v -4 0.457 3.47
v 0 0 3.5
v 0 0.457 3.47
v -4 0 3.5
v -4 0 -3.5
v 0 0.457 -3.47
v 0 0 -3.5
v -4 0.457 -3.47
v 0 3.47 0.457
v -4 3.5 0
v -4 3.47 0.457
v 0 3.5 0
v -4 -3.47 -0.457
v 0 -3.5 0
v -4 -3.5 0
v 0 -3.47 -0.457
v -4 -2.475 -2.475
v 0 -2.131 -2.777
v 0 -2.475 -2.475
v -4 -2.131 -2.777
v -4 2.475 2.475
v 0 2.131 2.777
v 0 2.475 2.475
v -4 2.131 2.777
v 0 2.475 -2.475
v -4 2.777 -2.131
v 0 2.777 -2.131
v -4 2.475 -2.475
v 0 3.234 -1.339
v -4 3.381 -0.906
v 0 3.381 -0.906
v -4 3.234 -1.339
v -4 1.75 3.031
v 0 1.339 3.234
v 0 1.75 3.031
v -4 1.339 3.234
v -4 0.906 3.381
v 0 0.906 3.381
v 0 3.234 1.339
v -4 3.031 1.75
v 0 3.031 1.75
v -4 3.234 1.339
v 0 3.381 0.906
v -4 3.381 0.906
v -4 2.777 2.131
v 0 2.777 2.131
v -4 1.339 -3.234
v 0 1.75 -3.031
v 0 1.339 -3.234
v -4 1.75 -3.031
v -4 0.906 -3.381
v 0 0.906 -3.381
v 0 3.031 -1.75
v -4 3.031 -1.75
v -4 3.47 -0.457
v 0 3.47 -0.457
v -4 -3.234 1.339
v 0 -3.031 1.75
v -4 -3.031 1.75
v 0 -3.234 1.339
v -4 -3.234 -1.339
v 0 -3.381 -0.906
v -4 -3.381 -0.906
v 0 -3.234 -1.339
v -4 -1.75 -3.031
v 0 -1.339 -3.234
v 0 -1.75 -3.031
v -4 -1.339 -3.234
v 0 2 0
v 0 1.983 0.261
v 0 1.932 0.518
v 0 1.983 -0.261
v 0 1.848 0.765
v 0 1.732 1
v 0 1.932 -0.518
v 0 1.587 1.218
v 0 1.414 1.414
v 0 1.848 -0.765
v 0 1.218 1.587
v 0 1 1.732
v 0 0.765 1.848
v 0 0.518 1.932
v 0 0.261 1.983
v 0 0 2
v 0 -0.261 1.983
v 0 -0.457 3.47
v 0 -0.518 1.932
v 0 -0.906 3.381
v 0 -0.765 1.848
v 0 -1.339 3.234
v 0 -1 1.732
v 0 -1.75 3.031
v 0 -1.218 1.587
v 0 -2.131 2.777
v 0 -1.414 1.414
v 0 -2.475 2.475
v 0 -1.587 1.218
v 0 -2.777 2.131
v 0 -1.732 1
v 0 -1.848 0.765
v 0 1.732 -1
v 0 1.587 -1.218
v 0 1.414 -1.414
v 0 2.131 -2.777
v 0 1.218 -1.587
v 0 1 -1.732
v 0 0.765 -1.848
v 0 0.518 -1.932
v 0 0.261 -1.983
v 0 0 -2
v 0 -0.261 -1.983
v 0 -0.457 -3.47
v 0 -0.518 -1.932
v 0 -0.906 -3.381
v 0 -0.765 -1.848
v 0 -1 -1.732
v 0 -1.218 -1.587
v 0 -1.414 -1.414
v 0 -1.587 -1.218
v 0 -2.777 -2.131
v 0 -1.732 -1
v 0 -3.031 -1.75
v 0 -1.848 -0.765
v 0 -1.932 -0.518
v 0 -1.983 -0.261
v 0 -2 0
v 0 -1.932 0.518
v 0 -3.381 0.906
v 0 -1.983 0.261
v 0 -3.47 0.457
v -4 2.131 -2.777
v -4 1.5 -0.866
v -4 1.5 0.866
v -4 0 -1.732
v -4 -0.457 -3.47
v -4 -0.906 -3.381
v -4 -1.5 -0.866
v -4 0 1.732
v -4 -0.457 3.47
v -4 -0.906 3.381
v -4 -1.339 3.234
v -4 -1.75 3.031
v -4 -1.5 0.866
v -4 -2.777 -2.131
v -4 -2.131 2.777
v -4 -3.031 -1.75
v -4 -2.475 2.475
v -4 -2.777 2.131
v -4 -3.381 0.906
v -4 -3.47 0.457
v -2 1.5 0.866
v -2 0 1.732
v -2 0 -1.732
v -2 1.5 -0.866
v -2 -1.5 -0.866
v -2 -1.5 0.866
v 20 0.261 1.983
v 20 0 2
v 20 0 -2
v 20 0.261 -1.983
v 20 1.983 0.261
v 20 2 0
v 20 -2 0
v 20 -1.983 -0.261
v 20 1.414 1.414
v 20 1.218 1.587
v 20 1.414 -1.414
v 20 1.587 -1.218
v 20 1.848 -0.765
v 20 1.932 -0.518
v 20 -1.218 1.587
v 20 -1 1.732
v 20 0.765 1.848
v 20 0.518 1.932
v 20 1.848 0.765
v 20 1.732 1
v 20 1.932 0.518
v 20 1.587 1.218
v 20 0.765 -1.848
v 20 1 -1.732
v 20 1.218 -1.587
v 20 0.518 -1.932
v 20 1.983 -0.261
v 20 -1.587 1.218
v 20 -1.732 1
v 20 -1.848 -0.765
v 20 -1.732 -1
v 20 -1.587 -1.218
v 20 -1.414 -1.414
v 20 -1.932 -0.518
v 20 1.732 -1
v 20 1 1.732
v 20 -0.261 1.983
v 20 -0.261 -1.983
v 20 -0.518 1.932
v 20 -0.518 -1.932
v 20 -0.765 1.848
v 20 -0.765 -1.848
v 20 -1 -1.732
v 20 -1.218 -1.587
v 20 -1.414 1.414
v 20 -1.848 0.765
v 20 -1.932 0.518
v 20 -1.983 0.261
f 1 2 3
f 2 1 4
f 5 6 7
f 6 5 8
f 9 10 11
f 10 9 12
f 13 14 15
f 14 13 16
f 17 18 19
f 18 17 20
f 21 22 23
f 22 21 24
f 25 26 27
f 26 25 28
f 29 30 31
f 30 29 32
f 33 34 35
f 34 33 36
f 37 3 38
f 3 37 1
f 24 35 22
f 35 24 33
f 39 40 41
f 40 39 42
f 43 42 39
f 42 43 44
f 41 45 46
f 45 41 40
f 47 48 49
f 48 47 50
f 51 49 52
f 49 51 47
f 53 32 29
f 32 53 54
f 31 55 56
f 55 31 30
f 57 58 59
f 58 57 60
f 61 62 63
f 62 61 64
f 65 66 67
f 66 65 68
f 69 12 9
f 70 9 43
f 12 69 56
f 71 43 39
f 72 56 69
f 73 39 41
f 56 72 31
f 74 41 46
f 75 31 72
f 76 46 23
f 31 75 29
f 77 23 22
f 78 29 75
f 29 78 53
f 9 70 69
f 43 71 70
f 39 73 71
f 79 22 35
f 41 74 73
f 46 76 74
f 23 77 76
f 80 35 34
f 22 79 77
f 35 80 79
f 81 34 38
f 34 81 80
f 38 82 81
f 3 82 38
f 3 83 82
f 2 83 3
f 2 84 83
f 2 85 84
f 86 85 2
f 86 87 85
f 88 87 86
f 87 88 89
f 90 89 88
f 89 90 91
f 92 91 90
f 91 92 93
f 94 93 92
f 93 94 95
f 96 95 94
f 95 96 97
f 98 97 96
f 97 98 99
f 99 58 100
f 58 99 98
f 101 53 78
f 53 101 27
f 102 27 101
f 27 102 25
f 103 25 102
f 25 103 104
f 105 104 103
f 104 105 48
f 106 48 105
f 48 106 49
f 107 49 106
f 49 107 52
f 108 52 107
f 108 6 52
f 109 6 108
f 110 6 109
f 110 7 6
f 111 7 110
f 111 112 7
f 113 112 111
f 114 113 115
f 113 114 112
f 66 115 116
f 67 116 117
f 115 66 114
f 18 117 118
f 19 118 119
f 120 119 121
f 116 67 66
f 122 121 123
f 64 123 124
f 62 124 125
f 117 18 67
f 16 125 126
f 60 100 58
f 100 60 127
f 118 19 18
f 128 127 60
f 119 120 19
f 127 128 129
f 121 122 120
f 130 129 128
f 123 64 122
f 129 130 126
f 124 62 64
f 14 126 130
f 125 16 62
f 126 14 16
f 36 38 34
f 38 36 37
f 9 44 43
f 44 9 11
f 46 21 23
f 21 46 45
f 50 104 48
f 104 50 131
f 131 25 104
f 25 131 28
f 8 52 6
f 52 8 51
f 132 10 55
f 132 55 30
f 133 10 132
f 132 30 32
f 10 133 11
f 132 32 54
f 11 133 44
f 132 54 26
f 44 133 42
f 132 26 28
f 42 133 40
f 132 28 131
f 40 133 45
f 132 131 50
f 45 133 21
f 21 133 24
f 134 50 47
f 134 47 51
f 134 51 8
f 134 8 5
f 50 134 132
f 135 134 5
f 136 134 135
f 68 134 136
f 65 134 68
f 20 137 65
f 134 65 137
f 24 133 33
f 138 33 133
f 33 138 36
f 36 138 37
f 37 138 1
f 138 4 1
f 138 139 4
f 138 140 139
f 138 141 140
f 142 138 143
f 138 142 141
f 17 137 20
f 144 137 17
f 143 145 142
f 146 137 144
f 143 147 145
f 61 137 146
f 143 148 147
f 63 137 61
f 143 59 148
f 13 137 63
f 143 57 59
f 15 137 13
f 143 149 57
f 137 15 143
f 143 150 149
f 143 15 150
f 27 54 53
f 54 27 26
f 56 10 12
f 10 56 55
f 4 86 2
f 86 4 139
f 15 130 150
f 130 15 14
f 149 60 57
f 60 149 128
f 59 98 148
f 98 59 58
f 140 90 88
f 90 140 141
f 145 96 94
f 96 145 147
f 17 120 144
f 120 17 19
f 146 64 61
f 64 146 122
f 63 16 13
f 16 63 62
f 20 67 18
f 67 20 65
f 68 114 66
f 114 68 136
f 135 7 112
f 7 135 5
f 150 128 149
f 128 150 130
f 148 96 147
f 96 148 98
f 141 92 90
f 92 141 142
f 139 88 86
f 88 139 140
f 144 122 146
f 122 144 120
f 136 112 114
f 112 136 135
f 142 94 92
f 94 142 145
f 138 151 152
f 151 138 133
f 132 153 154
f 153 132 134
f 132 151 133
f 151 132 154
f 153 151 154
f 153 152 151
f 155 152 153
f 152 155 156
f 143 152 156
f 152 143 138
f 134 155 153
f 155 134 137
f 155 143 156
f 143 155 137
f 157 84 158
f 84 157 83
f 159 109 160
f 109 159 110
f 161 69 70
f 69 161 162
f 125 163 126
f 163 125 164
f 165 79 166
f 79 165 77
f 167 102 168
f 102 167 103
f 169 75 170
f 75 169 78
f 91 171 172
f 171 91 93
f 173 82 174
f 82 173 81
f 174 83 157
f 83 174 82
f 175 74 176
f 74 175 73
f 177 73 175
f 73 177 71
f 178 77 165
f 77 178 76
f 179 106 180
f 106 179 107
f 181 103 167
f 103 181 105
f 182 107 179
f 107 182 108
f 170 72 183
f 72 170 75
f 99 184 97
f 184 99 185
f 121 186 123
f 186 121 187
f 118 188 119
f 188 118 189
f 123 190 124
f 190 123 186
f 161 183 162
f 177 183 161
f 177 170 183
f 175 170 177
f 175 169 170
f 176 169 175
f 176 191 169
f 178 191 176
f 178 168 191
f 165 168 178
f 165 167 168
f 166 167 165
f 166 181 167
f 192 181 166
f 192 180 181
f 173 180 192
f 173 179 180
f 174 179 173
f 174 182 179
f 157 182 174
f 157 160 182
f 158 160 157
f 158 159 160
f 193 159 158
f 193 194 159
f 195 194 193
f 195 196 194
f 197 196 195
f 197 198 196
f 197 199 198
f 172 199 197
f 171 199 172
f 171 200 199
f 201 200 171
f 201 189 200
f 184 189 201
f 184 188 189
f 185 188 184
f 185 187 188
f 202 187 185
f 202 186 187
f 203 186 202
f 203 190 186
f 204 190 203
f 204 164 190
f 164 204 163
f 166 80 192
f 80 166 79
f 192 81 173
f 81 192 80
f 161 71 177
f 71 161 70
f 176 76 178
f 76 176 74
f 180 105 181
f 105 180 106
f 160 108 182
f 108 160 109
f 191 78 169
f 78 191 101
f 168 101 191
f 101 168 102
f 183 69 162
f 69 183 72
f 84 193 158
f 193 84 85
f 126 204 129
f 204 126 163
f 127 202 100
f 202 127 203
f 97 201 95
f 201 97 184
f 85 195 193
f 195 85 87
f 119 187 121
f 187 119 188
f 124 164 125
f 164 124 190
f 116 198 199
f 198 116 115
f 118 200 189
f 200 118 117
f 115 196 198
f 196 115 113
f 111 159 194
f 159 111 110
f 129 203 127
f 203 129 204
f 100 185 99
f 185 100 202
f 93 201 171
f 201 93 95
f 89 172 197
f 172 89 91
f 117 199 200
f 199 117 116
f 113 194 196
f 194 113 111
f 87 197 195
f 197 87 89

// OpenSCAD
// file: ../../../lib/nutsnbolts/data-access.scad
// Norm Nuts and Bolts - a OpenSCAD library
// Copyright (C) 2012  Johannes Kneer

// This program is free software: you can redistribute it and/or modify
// it under the terms of the GNU General Public License as published by
// the Free Software Foundation, either version 3 of the License, or
// (at your option) any later version.

// This program is distributed in the hope that it will be useful,
// but WITHOUT ANY WARRANTY; without even the implied warranty of
// MERCHANTABILITY or FITNESS FOR A PARTICULAR PURPOSE.  See the
// GNU General Public License for more details.

// You should have received a copy of the GNU General Public License
// along with this program.  If not, see <http://www.gnu.org/licenses/>.


// DATABASE ACCESS FUNCTIONS AND CONSTANTS



// == CONSTANTS ==

// screw table access keys
_NB_S_DESC            = 0;
_NB_S_FAMKEY			    = 1;
_NB_S_LENGTH          = 2;
_NB_S_NOTHREAD_LENGTH = 3;

_NB_F_DESC			      = 0;
_NB_F_OUTER_DIA       = 1;
_NB_F_INNER_DIA       = 2;
_NB_F_LEAD            = 3;
_NB_F_KEY             = 4;
_NB_F_KEY_DEPTH       = 5;
_NB_F_HEAD_HEIGHT     = 6;
_NB_F_HEAD_DIA        = 7;
_NB_F_NUT_KEY         = 8;
_NB_F_NUT_HEIGHT      = 9;
_NB_F_PITCH_FINE      = 10;
_NB_F_PITCH_MEDIUM    = 11;
_NB_F_PITCH_COARSE    = 12;


// == FUNCTIONS ==

// _get_screw("descriptor")   with descriptor = M8x25
//   find the line for a general object in the data matrix

function _get_screw(n) = data_screw[search([n], data_screw)[0]];
function _get_screw_fam(n) = data_screw_fam[search([_get_screw(n)[_NB_S_FAMKEY]], data_screw_fam)[0]];

function _get_fam(n) = data_screw_fam[search([n], data_screw_fam)[0]];


// _get_XXXXX("descriptor") functions
// find a single property in the database

function _get_desc(n)        = _get_screw(n)[_NB_S_DESC];
function _get_famkey(n)         = _get_screw(n)[_NB_S_FAMKEY];
function _get_length(n)      = _get_screw(n)[_NB_S_LENGTH];
function _get_nt_length(n)   = _get_screw(n)[_NB_S_NOTHREAD_LENGTH];

function _get_outer_dia(n)   = _get_screw_fam(n)[_NB_F_OUTER_DIA];
function _get_inner_dia(n)   = _get_screw_fam(n)[_NB_F_INNER_DIA];
function _get_lead(n)        = _get_screw_fam(n)[_NB_F_LEAD];
function _get_head_height(n) = _get_screw_fam(n)[_NB_F_HEAD_HEIGHT];
function _get_head_dia(n)    = _get_screw_fam(n)[_NB_F_HEAD_DIA];
function _get_nut_key(n)     = _get_screw_fam(n)[_NB_F_NUT_KEY];
function _get_nut_height(n)  = _get_screw_fam(n)[_NB_F_NUT_HEIGHT];
function _get_fine_pitch(n)  = _get_screw_fam(n)[_NB_F_PITCH_FINE];
function _get_medium_pitch(n)  = _get_screw_fam(n)[_NB_F_PITCH_MEDIUM];
function _get_coarse_pitch(n)  = _get_screw_fam(n)[_NB_F_PITCH_COARSE];
// main file
/**********************************************************************************************************************
 **
 ** parts/vitamins/screw_M4x20.scad
 **
 ** This file renders a screw of the dimensions specified by the file name.
 **
 **********************************************************************************************************************/

include <../../../lib/nutsnbolts/cyl_head_bolt.scad>;

$fn = 48;
rotate([0, -90, 0])
	screw("M4x20"); 
